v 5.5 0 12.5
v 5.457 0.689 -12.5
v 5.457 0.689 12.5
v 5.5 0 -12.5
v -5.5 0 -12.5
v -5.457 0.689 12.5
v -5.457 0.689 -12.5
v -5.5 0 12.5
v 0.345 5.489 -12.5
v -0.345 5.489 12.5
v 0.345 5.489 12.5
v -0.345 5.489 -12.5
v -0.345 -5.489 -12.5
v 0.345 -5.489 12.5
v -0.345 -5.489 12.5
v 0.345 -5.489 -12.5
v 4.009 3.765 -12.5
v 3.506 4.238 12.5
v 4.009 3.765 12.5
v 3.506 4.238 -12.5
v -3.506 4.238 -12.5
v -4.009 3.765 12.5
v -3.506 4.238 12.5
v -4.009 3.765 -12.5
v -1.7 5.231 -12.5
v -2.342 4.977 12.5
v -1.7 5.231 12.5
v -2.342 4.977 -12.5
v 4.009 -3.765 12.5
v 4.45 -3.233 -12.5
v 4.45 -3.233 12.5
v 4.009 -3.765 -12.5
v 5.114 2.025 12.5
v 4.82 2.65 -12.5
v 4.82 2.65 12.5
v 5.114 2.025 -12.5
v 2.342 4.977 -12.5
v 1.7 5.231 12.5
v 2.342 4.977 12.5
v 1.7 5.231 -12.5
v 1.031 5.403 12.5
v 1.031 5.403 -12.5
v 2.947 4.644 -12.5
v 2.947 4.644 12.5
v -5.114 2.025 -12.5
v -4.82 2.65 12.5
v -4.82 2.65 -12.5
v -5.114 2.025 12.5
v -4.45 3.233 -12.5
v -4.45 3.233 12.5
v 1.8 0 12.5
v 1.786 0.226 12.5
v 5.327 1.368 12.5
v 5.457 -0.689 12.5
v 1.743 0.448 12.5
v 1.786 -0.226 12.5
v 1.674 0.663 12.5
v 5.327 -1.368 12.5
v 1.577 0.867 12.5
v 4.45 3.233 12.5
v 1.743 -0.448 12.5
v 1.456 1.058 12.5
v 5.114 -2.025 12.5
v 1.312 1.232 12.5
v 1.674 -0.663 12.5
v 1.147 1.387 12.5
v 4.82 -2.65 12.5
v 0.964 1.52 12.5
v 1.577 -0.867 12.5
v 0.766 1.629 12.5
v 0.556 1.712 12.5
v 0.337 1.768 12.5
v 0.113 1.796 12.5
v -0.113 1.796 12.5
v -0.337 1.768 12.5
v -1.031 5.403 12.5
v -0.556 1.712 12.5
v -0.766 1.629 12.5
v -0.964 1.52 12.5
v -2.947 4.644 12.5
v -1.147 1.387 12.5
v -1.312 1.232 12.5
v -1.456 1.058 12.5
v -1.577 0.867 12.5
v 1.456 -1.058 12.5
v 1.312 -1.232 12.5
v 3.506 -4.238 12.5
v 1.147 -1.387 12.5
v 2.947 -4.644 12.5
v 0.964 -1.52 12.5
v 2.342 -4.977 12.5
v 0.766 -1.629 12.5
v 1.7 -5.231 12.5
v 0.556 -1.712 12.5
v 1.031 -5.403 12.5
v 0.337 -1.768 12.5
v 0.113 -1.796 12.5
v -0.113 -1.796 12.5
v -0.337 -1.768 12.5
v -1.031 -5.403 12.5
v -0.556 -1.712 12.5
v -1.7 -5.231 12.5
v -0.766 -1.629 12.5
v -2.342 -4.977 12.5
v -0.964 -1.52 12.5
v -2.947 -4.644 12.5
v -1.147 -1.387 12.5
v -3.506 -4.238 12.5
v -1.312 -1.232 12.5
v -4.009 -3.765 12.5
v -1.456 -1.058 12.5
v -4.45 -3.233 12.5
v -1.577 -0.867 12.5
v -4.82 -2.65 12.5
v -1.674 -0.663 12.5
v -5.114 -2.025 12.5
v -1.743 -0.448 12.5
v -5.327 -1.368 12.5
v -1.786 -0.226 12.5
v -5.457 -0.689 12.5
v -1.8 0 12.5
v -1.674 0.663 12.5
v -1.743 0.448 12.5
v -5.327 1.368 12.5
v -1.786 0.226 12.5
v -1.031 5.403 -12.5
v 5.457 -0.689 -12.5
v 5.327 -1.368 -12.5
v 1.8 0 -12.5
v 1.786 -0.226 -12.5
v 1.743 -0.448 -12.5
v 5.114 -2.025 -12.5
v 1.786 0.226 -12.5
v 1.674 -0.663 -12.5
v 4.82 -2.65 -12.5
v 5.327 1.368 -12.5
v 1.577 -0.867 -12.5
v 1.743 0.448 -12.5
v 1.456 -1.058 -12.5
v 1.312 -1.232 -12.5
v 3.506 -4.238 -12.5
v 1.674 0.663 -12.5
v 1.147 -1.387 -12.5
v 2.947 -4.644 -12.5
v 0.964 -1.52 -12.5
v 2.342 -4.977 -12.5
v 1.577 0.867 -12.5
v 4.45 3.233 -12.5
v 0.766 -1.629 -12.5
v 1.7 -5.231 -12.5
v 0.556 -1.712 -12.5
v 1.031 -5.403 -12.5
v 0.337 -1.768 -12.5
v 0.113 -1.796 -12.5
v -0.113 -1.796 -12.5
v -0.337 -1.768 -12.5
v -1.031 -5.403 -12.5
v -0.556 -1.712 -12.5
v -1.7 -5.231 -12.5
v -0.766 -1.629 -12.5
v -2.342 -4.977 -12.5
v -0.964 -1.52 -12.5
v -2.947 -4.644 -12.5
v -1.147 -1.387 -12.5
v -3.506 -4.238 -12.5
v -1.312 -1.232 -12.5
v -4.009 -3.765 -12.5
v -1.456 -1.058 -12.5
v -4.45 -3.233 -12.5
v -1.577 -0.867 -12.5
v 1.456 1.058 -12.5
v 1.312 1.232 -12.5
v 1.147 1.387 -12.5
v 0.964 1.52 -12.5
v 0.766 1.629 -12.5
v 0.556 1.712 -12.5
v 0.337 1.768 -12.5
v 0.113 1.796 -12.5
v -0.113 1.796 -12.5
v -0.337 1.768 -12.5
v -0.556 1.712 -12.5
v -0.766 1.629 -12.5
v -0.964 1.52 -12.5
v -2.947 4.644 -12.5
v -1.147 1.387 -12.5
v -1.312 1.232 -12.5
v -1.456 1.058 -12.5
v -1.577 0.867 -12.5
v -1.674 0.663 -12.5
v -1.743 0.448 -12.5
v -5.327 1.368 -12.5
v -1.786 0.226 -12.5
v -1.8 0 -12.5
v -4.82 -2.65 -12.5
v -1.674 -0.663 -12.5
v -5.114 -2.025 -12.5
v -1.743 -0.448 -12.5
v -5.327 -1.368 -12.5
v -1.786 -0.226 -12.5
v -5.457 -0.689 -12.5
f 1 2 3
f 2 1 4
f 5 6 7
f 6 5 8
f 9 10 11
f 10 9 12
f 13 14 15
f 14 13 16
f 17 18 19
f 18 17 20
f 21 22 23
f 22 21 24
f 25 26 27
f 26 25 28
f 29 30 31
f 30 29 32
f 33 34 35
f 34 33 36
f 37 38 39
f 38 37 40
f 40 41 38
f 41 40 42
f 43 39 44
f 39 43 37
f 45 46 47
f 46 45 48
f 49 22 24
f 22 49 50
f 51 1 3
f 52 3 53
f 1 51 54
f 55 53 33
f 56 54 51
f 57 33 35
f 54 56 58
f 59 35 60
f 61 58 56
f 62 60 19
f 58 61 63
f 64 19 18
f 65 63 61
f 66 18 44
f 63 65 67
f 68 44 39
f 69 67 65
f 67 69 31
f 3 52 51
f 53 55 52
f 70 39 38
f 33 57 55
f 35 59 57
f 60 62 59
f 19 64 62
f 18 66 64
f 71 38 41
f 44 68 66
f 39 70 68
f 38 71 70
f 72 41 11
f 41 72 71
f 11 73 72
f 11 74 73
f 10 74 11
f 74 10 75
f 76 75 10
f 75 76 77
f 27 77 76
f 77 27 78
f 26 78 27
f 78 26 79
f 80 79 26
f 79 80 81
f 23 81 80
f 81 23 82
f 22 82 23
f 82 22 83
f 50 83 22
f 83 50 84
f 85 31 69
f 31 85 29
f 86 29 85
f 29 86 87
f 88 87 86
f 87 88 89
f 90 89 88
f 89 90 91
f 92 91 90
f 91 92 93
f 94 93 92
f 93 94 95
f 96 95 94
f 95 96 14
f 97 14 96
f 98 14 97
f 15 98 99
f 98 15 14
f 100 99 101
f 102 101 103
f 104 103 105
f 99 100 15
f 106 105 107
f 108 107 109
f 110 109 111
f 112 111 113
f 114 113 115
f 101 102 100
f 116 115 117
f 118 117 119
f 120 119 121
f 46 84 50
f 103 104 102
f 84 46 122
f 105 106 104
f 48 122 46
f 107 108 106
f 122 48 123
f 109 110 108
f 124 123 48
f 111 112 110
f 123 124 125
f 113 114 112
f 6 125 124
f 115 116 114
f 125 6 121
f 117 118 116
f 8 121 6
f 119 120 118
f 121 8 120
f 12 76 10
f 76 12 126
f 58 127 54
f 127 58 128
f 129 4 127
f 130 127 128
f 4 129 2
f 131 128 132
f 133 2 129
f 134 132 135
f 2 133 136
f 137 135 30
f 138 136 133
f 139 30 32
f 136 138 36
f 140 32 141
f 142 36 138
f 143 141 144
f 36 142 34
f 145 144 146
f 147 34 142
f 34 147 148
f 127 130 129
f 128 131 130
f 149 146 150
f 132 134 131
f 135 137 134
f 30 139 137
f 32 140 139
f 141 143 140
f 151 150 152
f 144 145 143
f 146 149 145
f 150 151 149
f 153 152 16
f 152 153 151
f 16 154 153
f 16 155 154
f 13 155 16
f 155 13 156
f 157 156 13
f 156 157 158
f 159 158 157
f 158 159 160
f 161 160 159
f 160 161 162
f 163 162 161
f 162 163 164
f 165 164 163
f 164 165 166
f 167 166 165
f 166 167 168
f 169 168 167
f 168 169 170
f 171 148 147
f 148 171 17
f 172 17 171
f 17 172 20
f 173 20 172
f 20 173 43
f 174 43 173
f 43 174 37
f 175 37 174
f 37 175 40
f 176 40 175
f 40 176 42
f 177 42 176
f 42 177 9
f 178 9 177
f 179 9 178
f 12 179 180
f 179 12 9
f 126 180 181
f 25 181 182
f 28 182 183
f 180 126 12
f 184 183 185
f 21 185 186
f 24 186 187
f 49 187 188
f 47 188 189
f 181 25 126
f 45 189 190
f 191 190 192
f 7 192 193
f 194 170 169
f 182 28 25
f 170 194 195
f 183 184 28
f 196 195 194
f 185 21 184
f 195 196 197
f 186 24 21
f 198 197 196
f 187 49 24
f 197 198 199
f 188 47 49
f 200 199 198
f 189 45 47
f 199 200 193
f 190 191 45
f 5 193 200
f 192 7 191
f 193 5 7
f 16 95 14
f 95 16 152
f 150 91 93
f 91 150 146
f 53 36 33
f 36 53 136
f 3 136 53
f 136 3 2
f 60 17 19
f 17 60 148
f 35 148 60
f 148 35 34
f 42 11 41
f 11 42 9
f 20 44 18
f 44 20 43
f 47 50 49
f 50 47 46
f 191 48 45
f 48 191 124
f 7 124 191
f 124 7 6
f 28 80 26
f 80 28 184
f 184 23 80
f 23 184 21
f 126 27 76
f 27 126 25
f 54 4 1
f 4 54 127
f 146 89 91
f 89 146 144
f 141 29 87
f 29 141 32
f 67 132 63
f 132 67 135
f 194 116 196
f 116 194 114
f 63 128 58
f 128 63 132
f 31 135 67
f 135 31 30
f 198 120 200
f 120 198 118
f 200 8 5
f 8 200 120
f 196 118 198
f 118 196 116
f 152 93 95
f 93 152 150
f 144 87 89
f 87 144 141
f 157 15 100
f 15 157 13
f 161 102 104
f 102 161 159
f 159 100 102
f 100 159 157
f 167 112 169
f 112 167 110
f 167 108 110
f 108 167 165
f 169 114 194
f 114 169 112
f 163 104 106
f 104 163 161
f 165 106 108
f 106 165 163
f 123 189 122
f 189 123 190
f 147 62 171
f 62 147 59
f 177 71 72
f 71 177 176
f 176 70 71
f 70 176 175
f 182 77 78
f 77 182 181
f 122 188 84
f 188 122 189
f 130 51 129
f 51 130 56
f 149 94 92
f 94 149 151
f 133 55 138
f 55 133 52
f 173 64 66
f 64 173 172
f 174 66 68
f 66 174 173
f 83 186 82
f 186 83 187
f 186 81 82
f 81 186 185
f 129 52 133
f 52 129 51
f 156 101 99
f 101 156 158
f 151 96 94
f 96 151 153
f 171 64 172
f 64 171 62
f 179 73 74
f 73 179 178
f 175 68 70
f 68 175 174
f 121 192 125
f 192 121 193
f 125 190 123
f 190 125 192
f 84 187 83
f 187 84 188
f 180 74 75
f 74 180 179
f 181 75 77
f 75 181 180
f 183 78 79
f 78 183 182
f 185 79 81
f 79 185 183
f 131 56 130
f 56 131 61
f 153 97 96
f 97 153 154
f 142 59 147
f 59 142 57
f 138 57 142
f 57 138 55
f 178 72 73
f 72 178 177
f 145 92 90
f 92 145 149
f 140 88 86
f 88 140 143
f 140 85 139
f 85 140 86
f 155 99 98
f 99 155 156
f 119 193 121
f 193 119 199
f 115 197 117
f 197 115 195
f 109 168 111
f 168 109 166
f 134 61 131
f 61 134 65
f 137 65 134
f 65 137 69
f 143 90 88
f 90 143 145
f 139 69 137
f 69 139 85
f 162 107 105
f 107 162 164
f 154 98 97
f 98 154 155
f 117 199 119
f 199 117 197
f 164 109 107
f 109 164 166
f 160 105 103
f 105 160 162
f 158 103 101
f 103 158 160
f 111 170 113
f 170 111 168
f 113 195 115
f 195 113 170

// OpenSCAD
$fn = 50;


difference() {
	union() {
		translate(v = [0, 0, -12.5000000000]) {
			cylinder(h = 25, r = 5.5000000000);
		}
	}
	union() {
		translate(v = [0, 0, -100.0000000000]) {
			cylinder(h = 200, r = 1.8000000000);
		}
	}
}
